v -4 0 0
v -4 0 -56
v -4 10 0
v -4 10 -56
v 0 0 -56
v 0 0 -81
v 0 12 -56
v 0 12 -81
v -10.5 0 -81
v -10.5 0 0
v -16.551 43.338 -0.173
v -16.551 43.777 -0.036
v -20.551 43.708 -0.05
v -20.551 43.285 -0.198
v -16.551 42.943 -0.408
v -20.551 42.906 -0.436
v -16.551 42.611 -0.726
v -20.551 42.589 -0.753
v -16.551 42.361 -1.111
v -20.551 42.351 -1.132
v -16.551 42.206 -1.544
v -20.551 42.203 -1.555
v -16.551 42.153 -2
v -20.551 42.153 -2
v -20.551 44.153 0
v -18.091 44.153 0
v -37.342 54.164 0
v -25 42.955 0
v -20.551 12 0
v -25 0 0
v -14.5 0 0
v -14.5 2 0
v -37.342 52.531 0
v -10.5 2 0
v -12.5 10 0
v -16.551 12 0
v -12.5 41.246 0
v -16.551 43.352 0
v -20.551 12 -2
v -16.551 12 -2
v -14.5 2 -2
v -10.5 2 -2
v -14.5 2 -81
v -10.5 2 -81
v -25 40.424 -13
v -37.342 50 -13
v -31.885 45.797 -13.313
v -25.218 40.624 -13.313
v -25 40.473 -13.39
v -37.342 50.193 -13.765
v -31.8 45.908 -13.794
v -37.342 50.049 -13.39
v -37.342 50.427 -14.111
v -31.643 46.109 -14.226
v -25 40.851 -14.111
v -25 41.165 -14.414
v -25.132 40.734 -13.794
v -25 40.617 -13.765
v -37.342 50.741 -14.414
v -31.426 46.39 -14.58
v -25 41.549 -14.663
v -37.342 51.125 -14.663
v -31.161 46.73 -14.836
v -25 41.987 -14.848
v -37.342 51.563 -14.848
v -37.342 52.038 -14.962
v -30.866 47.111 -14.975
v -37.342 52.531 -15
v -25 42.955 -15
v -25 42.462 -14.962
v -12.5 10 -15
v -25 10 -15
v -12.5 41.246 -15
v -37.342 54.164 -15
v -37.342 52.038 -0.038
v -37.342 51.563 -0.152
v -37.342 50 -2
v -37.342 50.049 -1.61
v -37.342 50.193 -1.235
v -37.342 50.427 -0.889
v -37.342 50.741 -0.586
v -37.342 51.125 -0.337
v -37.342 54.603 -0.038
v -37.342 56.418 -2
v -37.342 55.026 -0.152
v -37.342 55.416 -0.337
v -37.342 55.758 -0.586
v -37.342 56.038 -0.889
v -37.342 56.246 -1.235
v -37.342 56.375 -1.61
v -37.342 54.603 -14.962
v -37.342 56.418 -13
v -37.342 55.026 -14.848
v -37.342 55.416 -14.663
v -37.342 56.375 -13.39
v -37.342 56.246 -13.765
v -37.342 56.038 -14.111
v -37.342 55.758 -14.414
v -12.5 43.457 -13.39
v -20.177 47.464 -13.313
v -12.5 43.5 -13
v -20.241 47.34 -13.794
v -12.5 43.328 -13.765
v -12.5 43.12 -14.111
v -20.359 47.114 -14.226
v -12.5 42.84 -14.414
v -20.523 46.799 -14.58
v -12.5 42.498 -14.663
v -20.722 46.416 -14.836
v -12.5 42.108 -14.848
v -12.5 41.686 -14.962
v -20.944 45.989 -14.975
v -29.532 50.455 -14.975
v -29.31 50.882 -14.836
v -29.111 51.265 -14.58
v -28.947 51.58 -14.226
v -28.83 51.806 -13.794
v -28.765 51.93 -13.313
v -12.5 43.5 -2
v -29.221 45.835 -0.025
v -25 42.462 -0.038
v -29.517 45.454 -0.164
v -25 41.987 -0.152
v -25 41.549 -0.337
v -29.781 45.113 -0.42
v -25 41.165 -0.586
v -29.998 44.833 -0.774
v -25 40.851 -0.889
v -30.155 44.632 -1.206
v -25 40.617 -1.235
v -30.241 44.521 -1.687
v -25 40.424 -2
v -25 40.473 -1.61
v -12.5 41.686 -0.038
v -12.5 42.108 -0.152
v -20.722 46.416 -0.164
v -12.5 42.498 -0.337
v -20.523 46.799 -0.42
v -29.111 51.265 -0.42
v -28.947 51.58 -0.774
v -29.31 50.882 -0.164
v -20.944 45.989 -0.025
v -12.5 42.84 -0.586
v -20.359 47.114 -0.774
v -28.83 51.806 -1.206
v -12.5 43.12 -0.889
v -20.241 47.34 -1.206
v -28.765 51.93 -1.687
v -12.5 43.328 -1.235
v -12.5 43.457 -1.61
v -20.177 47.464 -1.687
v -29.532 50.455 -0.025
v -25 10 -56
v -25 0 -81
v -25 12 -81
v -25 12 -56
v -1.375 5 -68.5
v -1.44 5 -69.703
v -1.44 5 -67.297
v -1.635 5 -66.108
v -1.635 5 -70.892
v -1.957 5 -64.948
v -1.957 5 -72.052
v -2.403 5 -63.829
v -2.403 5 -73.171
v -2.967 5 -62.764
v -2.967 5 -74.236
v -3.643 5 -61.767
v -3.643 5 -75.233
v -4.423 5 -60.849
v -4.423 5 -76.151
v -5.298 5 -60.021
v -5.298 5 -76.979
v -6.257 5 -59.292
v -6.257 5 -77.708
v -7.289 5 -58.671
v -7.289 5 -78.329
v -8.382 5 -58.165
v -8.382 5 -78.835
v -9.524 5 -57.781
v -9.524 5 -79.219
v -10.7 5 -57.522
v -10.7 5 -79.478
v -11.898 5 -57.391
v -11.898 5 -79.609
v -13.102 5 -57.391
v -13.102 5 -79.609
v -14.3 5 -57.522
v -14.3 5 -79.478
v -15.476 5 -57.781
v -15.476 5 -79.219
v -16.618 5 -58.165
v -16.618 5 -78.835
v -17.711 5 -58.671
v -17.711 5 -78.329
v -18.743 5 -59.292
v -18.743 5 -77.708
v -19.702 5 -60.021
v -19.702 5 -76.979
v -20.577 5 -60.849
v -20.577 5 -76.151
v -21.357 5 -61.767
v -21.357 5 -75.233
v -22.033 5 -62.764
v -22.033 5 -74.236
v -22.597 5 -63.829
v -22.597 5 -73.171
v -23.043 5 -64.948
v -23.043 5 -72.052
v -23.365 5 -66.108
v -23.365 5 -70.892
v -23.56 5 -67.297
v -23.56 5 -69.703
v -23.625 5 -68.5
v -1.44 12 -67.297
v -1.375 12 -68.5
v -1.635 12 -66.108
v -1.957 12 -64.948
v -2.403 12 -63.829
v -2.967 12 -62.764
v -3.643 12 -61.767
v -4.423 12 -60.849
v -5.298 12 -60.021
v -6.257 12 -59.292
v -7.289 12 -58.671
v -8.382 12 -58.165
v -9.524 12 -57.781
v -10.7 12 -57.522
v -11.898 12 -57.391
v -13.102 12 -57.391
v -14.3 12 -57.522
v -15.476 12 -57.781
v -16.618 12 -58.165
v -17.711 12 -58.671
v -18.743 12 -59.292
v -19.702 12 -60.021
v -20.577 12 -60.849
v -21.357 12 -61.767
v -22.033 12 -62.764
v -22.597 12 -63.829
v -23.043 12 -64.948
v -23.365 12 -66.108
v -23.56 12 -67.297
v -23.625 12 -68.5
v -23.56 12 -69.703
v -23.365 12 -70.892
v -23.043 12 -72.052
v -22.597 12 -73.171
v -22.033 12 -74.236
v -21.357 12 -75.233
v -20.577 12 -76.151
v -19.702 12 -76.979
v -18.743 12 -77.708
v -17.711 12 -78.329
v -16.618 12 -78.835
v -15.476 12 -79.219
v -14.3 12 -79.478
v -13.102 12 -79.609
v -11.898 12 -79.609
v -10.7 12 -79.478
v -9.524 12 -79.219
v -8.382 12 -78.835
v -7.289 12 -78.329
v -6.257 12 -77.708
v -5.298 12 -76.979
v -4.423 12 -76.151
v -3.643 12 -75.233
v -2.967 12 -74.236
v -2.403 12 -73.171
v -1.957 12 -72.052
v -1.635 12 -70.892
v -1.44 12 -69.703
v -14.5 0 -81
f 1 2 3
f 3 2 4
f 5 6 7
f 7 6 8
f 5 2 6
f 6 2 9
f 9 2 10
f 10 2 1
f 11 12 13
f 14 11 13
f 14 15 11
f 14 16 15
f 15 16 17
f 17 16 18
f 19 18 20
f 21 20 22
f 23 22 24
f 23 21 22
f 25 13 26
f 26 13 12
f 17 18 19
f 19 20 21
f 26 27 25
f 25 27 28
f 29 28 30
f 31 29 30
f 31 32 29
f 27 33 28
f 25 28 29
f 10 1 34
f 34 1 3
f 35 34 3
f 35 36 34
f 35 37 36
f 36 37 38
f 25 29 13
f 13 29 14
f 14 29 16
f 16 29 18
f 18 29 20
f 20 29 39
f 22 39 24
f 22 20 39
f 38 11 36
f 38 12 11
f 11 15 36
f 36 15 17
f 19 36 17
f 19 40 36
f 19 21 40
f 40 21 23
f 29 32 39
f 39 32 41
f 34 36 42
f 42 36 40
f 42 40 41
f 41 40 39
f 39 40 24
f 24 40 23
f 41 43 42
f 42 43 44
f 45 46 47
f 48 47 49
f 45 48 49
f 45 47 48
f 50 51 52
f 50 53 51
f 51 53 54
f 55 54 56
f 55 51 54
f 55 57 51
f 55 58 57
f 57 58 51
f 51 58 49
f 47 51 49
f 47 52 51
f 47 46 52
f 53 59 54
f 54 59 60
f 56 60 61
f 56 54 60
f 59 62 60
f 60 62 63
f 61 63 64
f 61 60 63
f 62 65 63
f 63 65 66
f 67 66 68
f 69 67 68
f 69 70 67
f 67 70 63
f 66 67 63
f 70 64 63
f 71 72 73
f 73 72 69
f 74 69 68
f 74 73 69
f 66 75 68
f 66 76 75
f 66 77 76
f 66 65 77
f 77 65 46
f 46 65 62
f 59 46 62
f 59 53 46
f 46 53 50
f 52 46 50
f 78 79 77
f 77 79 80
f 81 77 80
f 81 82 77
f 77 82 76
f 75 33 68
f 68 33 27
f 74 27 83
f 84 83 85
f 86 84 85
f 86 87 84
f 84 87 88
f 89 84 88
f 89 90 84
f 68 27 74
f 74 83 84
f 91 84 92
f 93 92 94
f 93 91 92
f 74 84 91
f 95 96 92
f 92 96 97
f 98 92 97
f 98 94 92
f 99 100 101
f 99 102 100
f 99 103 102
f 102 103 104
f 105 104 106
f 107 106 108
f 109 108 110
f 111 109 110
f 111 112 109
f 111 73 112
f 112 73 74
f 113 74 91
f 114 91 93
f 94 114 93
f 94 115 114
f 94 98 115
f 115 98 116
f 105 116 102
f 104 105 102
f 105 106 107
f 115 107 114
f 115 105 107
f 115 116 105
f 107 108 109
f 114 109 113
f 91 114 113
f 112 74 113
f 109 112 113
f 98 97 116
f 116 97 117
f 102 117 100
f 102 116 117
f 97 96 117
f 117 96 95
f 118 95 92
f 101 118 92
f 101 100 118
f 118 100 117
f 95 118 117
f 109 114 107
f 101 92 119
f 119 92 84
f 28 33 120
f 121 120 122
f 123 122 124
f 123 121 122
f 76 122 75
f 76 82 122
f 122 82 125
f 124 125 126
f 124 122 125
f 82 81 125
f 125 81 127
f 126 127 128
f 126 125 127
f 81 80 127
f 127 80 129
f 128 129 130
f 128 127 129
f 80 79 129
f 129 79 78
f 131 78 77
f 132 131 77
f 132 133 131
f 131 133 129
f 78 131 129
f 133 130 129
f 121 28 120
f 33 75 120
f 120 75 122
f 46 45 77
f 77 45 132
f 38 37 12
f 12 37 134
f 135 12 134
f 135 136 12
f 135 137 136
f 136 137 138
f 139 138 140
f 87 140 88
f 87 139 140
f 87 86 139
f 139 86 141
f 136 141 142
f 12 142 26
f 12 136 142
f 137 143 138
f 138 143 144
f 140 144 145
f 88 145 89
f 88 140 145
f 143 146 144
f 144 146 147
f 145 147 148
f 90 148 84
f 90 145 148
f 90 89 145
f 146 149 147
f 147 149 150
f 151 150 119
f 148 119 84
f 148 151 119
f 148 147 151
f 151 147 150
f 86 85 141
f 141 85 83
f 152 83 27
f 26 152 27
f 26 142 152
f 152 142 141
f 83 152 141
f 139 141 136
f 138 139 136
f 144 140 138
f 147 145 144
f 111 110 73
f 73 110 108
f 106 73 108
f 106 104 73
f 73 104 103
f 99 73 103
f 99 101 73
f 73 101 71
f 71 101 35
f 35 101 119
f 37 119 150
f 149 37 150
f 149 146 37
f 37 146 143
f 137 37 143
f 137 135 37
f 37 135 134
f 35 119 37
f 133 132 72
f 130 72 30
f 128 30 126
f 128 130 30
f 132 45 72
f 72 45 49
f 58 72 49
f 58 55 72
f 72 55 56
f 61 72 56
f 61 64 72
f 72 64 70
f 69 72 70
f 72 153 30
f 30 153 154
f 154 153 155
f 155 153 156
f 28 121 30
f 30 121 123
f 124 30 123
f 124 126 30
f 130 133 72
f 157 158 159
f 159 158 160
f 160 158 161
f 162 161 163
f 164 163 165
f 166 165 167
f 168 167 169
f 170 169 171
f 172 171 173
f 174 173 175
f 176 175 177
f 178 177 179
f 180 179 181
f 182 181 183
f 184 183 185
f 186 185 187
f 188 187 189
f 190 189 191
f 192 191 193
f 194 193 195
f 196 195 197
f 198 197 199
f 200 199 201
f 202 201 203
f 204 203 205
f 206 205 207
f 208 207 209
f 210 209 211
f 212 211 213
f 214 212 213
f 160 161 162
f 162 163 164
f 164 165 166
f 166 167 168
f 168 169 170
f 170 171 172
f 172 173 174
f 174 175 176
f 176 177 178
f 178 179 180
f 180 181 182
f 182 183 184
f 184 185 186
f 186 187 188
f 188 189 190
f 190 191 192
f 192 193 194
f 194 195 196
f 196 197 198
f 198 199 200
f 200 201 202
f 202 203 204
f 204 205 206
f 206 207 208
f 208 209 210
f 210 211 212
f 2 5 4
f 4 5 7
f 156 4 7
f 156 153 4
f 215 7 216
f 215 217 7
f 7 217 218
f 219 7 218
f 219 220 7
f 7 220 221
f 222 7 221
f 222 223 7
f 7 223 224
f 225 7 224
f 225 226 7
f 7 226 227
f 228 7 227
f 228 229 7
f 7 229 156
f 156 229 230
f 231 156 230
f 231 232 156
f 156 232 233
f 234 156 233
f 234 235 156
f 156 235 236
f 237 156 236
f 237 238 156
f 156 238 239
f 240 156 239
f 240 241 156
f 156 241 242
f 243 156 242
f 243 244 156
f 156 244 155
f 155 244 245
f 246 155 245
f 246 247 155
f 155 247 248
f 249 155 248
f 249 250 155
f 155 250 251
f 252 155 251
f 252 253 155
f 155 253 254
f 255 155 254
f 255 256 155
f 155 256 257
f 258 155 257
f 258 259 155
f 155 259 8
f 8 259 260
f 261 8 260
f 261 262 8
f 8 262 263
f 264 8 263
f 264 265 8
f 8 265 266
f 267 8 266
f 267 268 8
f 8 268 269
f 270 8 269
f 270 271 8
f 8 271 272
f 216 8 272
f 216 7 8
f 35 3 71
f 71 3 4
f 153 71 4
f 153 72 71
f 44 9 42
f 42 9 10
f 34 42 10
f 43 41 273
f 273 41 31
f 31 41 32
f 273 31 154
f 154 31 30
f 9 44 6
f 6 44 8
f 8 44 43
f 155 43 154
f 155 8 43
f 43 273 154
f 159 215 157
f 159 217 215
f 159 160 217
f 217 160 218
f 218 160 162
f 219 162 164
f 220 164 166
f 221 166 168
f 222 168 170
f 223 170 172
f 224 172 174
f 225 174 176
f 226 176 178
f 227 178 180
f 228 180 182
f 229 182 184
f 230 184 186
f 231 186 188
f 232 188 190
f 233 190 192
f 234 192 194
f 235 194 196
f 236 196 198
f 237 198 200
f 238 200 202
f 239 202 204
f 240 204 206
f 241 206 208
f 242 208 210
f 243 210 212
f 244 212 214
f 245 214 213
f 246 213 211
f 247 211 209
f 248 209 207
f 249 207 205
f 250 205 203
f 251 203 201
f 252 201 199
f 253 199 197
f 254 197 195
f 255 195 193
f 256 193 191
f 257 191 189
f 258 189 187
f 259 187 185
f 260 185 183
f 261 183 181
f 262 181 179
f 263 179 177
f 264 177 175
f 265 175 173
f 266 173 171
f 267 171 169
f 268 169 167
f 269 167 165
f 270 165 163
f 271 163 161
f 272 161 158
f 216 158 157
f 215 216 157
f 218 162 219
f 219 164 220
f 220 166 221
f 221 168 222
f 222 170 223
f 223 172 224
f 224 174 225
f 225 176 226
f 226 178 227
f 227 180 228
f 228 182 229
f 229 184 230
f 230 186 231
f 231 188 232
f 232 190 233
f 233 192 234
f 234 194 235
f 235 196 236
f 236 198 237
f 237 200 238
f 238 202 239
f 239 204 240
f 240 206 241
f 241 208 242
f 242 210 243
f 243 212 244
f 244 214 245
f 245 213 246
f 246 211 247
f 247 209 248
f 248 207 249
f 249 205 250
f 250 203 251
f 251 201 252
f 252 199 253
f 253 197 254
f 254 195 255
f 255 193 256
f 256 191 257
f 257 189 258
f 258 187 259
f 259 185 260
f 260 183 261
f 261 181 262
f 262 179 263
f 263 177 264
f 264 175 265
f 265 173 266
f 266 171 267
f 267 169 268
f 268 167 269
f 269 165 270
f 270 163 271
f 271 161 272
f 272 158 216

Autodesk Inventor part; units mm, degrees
ref_plane "YZ Plane" through (0, 0, 0) normal (1, 0, 0) x (0, 1, 0)
ref_plane "XZ Plane" through (0, 0, 0) normal (0, 1, 0) x (-1, 0, 0)
ref_plane "XY Plane" through (0, 0, 0) normal (0, 0, 1) x (1, 0, 0)
sketch "Sketch1" plane through (0, 0, 0) normal (0, 1, 0) x (-1, 0, 0)
  line L0 (0, 0) -> (25, 0)
  line L1 (25, 0) -> (25, -81)
  line L2 (25, -81) -> (0, -81)
  line L3 (0, -81) -> (0, 0)
  dimension "d0" = 25
  dimension "d1" = 81
extrude "Extrusion1" add sketch "Sketch1" along normal blind 25
sketch "Sketch2" plane through (0, 0, 0) normal (1, 0, 0) x (0, 0, -1)
  line L0 (81, 0) -> (81, 10)
  line L1 (81, 0) -> (81, 25) projected
  line L2 (81, 25) -> (21, 25)
  line L3 (21, 25) -> (21, 10)
  line L4 (21, 10) -> (81, 10)
  line L5 (81, 10) -> (81, 25)
  point P0 (0, 0)
  dimension "d4" = 10
  dimension "d5" = 60
extrude "Extrusion2" cut sketch "Sketch2" against normal through all
sketch "Sketch3" plane through (0, 10, -21) normal (0, 1, 0) x (1, 0, 0)
  line L0 (0, 60) -> (0, -21) projected
  line L1 (-25, 60) -> (0, 60)
  line L2 (0, 60) -> (0, 35)
  line L3 (0, 35) -> (-25, 35)
  line L4 (-25, 35) -> (-25, 60)
  circle A0 centre (-12.5, 47.5) radius 11.125
  dimension "d8" = 25
  dimension "d9" = 22.25
extrude "Extrusion3" cut sketch "Sketch3" against normal blind 7 contours A0
sketch "Sketch4" plane through (-25, 0, 0) normal (0, 0, 1) x (1, 0, 0)
  line L0 (25, 10) -> (0, 25)
  line L1 (0, 25) -> (25, 25)
  line L2 (0, 25) -> (25, 25) projected
  line L3 (25, 25) -> (25, 10)
  point P0 (25, 0)
extrude "Extrusion4" cut sketch "Sketch4" against normal blind 21
sketch "Sketch5" plane through (0, 0, 0) normal (0, -1, 0) x (1, 0, 0)
  line L0 (0, 0) -> (-25, 0) projected
  line L1 (-10.5, -162) -> (-14.5, -162)
  line L2 (-14.5, -162) -> (-14.5, 0)
  line L3 (-14.5, 0) -> (-10.5, 0)
  line L4 (-10.5, 0) -> (-10.5, -162)
  line L5 (-25, -81) -> (0, -81) projected
  line L6 (-10.5, -162) -> (-14.5, 0) construction
  line L7 (-14.5, -162) -> (-10.5, 0) construction
  point P0 (-12.5, -81)
  dimension "d14" = 4
extrude "Extrusion5" cut sketch "Sketch5" against normal blind 2
sketch "Sketch6" plane through (-25, 10, -81) normal (0, 1, 0) x (1, 0, 0)
  line L0 (25, -25) -> (0, -25)
  line L1 (0, -25) -> (0, 0)
  line L2 (0, 0) -> (25, 0)
  line L3 (25, 0) -> (25, -25)
  circle A0 centre (12.5, -12.5) radius 11.125 projected
  line L4 (25, -25) -> (0, 0) construction
  line L5 (0, -25) -> (25, 0) construction
  circle A1 centre (12.5, -12.5) radius 11.125
  point P0 (25, -81)
extrude "Extrusion6" add sketch "Sketch6" along normal blind 2
sketch "Sketch7" plane through (-12.5, 3, -68.5) normal (0, 1, 0) x (1, 0, 0)
  circle A0 centre (0, 0) radius 11.125 projected
  circle A1 centre (0, 0) radius 11.125
  point P0 (12.5, -68.5)
extrude "Extrusion7" add sketch "Sketch7" along normal blind 2
sketch "Sketch8" plane through (-25, 0, 0) normal (0, 0, 1) x (1, 0, 0)
  line L0 (0, 0) -> (0, 50)
  line L1 (0, 50) -> (25, 50)
  line L2 (25, 50) -> (25, 37)
  line L3 (25, 37) -> (0, 50)
  line L4 (25, 37) -> (25, 10)
  line L5 (25, 0) -> (25, 12) projected
  line L6 (25, 10) -> (0, 25)
  line L7 (25, 10) -> (0, 25) projected
  line L8 (0, 50) -> (0, 25)
  line L9 (25, 10) -> (0, 25)
  line L10 (25, 37) -> (25, 10)
  line L11 (25, 10) -> (0, 10) projected
  line L12 (25, 37) -> (0, 50)
  dimension "d21" = 50
  dimension "d22" = 13
extrude "Extrusion8" add sketch "Sketch8" against normal blind 15 contours L0 L3 L4 L6
sketch "Sketch9" plane through (-25, 0, -81) normal (-1, 0, 0) x (0, 0, 1)
  line L0 (66, 25) -> (60, 25)
  line L1 (60, 25) -> (60, 10)
  line L2 (60, 10) -> (66, 10)
  line L3 (66, 10) -> (66, 25)
  point P0 (81, 0)
extrude "Extrusion9" cut sketch "Sketch9" against normal through all
sketch "Sketch10" plane through (-25, 0, -15) normal (0, 0, -1) x (-1, 0, 0)
  point P0 (-25, 0)
sketch "Sketch11" plane through (-10.5, 0, 0) normal (0, 0, 1) x (1, 0, 0)
  line L0 (10.5, 10) -> (-2, 10)
  line L1 (-2, 10) -> (-2, 47.9639)
  line L2 (-2, 47.9639) -> (10.5, 47.9639)
  line L3 (10.5, 47.9639) -> (10.5, 10)
  point P0 (10.5, 0)
extrude "Extrusion10" cut sketch "Sketch11" against normal blind 15
sketch "Sketch12" plane through (0, 0, 0) normal (0, 0, 1) x (1, 0, 0)
  line L0 (-12.5, 43.5) -> (-37.3421, 56.4179)
  line L1 (-25, 50) -> (-12.5, 43.5) projected
  line L2 (-37.3421, 56.4179) -> (-37.3421, 50)
  line L3 (-37.3421, 50) -> (-25, 40.4241)
  line L4 (-25, 0) -> (-25, 50) projected
  line L5 (-12.5, 43.5) -> (-25, 40.4241)
  point P0 (0, 0)
  dimension "d29" = 28
extrude "Extrusion11" add sketch "Sketch12" against normal blind 15 contours L4 L3 L2 L0
fillet "Fillet1" radius 2 1 edges at (-24.921, 49.9589, 0)
fillet "Fillet2" radius 2 1 edges at (-31.171, 45.212, 0)
fillet "Fillet3" radius 2 2 edges at (-24.921, 49.9589, -15) (-31.171, 45.212, -15)
sketch "Sketch13" plane through (0, 0, 0) normal (0, 0, 1) x (1, 0, 0)
  line L0 (-10.5, 2) -> (-16.5509, 12)
  line L1 (-23.625, 12) -> (-1.375, 12) projected
  line L2 (-16.5509, 12) -> (-16.5509, 42.153)
  line L3 (-16.5509, 42.153) -> (-20.5509, 42.153)
  line L4 (-20.5509, 42.153) -> (-20.5509, 12)
  line L5 (-20.5509, 12) -> (-14.5, 2)
  line L6 (-14.5, 2) -> (-10.5, 2)
  line L7 (-14.5, 2) -> (-10.5, 2) projected
  point P0 (0, 0)
  dimension "d35" = 4
extrude "Extrusion12" cut sketch "Sketch13" against normal blind 2
fillet "Fillet4" radius 2 1 edges at (-18.5509, 42.153, 0)
sketch "Sketch14" plane through (0, 10, 0) normal (0, 1, 0) x (1, 0, 0)
  line L0 (0, 56) -> (-25, 56) projected
  line L1 (0, 0) -> (-4, 0)
  line L2 (-4, 0) -> (-4, 56)
  line L3 (-4, 56) -> (0, 56)
  line L4 (0, 56) -> (0, 0)
  dimension "d39" = 4
extrude "Extrusion13" cut sketch "Sketch14" against normal through all
sketch "Sketch15" plane through (-25, 0, -15) normal (0, 0, -1) x (-1, 0, 0)
  point P0 (-25, 0)
properties part number "ConductiveThread"
